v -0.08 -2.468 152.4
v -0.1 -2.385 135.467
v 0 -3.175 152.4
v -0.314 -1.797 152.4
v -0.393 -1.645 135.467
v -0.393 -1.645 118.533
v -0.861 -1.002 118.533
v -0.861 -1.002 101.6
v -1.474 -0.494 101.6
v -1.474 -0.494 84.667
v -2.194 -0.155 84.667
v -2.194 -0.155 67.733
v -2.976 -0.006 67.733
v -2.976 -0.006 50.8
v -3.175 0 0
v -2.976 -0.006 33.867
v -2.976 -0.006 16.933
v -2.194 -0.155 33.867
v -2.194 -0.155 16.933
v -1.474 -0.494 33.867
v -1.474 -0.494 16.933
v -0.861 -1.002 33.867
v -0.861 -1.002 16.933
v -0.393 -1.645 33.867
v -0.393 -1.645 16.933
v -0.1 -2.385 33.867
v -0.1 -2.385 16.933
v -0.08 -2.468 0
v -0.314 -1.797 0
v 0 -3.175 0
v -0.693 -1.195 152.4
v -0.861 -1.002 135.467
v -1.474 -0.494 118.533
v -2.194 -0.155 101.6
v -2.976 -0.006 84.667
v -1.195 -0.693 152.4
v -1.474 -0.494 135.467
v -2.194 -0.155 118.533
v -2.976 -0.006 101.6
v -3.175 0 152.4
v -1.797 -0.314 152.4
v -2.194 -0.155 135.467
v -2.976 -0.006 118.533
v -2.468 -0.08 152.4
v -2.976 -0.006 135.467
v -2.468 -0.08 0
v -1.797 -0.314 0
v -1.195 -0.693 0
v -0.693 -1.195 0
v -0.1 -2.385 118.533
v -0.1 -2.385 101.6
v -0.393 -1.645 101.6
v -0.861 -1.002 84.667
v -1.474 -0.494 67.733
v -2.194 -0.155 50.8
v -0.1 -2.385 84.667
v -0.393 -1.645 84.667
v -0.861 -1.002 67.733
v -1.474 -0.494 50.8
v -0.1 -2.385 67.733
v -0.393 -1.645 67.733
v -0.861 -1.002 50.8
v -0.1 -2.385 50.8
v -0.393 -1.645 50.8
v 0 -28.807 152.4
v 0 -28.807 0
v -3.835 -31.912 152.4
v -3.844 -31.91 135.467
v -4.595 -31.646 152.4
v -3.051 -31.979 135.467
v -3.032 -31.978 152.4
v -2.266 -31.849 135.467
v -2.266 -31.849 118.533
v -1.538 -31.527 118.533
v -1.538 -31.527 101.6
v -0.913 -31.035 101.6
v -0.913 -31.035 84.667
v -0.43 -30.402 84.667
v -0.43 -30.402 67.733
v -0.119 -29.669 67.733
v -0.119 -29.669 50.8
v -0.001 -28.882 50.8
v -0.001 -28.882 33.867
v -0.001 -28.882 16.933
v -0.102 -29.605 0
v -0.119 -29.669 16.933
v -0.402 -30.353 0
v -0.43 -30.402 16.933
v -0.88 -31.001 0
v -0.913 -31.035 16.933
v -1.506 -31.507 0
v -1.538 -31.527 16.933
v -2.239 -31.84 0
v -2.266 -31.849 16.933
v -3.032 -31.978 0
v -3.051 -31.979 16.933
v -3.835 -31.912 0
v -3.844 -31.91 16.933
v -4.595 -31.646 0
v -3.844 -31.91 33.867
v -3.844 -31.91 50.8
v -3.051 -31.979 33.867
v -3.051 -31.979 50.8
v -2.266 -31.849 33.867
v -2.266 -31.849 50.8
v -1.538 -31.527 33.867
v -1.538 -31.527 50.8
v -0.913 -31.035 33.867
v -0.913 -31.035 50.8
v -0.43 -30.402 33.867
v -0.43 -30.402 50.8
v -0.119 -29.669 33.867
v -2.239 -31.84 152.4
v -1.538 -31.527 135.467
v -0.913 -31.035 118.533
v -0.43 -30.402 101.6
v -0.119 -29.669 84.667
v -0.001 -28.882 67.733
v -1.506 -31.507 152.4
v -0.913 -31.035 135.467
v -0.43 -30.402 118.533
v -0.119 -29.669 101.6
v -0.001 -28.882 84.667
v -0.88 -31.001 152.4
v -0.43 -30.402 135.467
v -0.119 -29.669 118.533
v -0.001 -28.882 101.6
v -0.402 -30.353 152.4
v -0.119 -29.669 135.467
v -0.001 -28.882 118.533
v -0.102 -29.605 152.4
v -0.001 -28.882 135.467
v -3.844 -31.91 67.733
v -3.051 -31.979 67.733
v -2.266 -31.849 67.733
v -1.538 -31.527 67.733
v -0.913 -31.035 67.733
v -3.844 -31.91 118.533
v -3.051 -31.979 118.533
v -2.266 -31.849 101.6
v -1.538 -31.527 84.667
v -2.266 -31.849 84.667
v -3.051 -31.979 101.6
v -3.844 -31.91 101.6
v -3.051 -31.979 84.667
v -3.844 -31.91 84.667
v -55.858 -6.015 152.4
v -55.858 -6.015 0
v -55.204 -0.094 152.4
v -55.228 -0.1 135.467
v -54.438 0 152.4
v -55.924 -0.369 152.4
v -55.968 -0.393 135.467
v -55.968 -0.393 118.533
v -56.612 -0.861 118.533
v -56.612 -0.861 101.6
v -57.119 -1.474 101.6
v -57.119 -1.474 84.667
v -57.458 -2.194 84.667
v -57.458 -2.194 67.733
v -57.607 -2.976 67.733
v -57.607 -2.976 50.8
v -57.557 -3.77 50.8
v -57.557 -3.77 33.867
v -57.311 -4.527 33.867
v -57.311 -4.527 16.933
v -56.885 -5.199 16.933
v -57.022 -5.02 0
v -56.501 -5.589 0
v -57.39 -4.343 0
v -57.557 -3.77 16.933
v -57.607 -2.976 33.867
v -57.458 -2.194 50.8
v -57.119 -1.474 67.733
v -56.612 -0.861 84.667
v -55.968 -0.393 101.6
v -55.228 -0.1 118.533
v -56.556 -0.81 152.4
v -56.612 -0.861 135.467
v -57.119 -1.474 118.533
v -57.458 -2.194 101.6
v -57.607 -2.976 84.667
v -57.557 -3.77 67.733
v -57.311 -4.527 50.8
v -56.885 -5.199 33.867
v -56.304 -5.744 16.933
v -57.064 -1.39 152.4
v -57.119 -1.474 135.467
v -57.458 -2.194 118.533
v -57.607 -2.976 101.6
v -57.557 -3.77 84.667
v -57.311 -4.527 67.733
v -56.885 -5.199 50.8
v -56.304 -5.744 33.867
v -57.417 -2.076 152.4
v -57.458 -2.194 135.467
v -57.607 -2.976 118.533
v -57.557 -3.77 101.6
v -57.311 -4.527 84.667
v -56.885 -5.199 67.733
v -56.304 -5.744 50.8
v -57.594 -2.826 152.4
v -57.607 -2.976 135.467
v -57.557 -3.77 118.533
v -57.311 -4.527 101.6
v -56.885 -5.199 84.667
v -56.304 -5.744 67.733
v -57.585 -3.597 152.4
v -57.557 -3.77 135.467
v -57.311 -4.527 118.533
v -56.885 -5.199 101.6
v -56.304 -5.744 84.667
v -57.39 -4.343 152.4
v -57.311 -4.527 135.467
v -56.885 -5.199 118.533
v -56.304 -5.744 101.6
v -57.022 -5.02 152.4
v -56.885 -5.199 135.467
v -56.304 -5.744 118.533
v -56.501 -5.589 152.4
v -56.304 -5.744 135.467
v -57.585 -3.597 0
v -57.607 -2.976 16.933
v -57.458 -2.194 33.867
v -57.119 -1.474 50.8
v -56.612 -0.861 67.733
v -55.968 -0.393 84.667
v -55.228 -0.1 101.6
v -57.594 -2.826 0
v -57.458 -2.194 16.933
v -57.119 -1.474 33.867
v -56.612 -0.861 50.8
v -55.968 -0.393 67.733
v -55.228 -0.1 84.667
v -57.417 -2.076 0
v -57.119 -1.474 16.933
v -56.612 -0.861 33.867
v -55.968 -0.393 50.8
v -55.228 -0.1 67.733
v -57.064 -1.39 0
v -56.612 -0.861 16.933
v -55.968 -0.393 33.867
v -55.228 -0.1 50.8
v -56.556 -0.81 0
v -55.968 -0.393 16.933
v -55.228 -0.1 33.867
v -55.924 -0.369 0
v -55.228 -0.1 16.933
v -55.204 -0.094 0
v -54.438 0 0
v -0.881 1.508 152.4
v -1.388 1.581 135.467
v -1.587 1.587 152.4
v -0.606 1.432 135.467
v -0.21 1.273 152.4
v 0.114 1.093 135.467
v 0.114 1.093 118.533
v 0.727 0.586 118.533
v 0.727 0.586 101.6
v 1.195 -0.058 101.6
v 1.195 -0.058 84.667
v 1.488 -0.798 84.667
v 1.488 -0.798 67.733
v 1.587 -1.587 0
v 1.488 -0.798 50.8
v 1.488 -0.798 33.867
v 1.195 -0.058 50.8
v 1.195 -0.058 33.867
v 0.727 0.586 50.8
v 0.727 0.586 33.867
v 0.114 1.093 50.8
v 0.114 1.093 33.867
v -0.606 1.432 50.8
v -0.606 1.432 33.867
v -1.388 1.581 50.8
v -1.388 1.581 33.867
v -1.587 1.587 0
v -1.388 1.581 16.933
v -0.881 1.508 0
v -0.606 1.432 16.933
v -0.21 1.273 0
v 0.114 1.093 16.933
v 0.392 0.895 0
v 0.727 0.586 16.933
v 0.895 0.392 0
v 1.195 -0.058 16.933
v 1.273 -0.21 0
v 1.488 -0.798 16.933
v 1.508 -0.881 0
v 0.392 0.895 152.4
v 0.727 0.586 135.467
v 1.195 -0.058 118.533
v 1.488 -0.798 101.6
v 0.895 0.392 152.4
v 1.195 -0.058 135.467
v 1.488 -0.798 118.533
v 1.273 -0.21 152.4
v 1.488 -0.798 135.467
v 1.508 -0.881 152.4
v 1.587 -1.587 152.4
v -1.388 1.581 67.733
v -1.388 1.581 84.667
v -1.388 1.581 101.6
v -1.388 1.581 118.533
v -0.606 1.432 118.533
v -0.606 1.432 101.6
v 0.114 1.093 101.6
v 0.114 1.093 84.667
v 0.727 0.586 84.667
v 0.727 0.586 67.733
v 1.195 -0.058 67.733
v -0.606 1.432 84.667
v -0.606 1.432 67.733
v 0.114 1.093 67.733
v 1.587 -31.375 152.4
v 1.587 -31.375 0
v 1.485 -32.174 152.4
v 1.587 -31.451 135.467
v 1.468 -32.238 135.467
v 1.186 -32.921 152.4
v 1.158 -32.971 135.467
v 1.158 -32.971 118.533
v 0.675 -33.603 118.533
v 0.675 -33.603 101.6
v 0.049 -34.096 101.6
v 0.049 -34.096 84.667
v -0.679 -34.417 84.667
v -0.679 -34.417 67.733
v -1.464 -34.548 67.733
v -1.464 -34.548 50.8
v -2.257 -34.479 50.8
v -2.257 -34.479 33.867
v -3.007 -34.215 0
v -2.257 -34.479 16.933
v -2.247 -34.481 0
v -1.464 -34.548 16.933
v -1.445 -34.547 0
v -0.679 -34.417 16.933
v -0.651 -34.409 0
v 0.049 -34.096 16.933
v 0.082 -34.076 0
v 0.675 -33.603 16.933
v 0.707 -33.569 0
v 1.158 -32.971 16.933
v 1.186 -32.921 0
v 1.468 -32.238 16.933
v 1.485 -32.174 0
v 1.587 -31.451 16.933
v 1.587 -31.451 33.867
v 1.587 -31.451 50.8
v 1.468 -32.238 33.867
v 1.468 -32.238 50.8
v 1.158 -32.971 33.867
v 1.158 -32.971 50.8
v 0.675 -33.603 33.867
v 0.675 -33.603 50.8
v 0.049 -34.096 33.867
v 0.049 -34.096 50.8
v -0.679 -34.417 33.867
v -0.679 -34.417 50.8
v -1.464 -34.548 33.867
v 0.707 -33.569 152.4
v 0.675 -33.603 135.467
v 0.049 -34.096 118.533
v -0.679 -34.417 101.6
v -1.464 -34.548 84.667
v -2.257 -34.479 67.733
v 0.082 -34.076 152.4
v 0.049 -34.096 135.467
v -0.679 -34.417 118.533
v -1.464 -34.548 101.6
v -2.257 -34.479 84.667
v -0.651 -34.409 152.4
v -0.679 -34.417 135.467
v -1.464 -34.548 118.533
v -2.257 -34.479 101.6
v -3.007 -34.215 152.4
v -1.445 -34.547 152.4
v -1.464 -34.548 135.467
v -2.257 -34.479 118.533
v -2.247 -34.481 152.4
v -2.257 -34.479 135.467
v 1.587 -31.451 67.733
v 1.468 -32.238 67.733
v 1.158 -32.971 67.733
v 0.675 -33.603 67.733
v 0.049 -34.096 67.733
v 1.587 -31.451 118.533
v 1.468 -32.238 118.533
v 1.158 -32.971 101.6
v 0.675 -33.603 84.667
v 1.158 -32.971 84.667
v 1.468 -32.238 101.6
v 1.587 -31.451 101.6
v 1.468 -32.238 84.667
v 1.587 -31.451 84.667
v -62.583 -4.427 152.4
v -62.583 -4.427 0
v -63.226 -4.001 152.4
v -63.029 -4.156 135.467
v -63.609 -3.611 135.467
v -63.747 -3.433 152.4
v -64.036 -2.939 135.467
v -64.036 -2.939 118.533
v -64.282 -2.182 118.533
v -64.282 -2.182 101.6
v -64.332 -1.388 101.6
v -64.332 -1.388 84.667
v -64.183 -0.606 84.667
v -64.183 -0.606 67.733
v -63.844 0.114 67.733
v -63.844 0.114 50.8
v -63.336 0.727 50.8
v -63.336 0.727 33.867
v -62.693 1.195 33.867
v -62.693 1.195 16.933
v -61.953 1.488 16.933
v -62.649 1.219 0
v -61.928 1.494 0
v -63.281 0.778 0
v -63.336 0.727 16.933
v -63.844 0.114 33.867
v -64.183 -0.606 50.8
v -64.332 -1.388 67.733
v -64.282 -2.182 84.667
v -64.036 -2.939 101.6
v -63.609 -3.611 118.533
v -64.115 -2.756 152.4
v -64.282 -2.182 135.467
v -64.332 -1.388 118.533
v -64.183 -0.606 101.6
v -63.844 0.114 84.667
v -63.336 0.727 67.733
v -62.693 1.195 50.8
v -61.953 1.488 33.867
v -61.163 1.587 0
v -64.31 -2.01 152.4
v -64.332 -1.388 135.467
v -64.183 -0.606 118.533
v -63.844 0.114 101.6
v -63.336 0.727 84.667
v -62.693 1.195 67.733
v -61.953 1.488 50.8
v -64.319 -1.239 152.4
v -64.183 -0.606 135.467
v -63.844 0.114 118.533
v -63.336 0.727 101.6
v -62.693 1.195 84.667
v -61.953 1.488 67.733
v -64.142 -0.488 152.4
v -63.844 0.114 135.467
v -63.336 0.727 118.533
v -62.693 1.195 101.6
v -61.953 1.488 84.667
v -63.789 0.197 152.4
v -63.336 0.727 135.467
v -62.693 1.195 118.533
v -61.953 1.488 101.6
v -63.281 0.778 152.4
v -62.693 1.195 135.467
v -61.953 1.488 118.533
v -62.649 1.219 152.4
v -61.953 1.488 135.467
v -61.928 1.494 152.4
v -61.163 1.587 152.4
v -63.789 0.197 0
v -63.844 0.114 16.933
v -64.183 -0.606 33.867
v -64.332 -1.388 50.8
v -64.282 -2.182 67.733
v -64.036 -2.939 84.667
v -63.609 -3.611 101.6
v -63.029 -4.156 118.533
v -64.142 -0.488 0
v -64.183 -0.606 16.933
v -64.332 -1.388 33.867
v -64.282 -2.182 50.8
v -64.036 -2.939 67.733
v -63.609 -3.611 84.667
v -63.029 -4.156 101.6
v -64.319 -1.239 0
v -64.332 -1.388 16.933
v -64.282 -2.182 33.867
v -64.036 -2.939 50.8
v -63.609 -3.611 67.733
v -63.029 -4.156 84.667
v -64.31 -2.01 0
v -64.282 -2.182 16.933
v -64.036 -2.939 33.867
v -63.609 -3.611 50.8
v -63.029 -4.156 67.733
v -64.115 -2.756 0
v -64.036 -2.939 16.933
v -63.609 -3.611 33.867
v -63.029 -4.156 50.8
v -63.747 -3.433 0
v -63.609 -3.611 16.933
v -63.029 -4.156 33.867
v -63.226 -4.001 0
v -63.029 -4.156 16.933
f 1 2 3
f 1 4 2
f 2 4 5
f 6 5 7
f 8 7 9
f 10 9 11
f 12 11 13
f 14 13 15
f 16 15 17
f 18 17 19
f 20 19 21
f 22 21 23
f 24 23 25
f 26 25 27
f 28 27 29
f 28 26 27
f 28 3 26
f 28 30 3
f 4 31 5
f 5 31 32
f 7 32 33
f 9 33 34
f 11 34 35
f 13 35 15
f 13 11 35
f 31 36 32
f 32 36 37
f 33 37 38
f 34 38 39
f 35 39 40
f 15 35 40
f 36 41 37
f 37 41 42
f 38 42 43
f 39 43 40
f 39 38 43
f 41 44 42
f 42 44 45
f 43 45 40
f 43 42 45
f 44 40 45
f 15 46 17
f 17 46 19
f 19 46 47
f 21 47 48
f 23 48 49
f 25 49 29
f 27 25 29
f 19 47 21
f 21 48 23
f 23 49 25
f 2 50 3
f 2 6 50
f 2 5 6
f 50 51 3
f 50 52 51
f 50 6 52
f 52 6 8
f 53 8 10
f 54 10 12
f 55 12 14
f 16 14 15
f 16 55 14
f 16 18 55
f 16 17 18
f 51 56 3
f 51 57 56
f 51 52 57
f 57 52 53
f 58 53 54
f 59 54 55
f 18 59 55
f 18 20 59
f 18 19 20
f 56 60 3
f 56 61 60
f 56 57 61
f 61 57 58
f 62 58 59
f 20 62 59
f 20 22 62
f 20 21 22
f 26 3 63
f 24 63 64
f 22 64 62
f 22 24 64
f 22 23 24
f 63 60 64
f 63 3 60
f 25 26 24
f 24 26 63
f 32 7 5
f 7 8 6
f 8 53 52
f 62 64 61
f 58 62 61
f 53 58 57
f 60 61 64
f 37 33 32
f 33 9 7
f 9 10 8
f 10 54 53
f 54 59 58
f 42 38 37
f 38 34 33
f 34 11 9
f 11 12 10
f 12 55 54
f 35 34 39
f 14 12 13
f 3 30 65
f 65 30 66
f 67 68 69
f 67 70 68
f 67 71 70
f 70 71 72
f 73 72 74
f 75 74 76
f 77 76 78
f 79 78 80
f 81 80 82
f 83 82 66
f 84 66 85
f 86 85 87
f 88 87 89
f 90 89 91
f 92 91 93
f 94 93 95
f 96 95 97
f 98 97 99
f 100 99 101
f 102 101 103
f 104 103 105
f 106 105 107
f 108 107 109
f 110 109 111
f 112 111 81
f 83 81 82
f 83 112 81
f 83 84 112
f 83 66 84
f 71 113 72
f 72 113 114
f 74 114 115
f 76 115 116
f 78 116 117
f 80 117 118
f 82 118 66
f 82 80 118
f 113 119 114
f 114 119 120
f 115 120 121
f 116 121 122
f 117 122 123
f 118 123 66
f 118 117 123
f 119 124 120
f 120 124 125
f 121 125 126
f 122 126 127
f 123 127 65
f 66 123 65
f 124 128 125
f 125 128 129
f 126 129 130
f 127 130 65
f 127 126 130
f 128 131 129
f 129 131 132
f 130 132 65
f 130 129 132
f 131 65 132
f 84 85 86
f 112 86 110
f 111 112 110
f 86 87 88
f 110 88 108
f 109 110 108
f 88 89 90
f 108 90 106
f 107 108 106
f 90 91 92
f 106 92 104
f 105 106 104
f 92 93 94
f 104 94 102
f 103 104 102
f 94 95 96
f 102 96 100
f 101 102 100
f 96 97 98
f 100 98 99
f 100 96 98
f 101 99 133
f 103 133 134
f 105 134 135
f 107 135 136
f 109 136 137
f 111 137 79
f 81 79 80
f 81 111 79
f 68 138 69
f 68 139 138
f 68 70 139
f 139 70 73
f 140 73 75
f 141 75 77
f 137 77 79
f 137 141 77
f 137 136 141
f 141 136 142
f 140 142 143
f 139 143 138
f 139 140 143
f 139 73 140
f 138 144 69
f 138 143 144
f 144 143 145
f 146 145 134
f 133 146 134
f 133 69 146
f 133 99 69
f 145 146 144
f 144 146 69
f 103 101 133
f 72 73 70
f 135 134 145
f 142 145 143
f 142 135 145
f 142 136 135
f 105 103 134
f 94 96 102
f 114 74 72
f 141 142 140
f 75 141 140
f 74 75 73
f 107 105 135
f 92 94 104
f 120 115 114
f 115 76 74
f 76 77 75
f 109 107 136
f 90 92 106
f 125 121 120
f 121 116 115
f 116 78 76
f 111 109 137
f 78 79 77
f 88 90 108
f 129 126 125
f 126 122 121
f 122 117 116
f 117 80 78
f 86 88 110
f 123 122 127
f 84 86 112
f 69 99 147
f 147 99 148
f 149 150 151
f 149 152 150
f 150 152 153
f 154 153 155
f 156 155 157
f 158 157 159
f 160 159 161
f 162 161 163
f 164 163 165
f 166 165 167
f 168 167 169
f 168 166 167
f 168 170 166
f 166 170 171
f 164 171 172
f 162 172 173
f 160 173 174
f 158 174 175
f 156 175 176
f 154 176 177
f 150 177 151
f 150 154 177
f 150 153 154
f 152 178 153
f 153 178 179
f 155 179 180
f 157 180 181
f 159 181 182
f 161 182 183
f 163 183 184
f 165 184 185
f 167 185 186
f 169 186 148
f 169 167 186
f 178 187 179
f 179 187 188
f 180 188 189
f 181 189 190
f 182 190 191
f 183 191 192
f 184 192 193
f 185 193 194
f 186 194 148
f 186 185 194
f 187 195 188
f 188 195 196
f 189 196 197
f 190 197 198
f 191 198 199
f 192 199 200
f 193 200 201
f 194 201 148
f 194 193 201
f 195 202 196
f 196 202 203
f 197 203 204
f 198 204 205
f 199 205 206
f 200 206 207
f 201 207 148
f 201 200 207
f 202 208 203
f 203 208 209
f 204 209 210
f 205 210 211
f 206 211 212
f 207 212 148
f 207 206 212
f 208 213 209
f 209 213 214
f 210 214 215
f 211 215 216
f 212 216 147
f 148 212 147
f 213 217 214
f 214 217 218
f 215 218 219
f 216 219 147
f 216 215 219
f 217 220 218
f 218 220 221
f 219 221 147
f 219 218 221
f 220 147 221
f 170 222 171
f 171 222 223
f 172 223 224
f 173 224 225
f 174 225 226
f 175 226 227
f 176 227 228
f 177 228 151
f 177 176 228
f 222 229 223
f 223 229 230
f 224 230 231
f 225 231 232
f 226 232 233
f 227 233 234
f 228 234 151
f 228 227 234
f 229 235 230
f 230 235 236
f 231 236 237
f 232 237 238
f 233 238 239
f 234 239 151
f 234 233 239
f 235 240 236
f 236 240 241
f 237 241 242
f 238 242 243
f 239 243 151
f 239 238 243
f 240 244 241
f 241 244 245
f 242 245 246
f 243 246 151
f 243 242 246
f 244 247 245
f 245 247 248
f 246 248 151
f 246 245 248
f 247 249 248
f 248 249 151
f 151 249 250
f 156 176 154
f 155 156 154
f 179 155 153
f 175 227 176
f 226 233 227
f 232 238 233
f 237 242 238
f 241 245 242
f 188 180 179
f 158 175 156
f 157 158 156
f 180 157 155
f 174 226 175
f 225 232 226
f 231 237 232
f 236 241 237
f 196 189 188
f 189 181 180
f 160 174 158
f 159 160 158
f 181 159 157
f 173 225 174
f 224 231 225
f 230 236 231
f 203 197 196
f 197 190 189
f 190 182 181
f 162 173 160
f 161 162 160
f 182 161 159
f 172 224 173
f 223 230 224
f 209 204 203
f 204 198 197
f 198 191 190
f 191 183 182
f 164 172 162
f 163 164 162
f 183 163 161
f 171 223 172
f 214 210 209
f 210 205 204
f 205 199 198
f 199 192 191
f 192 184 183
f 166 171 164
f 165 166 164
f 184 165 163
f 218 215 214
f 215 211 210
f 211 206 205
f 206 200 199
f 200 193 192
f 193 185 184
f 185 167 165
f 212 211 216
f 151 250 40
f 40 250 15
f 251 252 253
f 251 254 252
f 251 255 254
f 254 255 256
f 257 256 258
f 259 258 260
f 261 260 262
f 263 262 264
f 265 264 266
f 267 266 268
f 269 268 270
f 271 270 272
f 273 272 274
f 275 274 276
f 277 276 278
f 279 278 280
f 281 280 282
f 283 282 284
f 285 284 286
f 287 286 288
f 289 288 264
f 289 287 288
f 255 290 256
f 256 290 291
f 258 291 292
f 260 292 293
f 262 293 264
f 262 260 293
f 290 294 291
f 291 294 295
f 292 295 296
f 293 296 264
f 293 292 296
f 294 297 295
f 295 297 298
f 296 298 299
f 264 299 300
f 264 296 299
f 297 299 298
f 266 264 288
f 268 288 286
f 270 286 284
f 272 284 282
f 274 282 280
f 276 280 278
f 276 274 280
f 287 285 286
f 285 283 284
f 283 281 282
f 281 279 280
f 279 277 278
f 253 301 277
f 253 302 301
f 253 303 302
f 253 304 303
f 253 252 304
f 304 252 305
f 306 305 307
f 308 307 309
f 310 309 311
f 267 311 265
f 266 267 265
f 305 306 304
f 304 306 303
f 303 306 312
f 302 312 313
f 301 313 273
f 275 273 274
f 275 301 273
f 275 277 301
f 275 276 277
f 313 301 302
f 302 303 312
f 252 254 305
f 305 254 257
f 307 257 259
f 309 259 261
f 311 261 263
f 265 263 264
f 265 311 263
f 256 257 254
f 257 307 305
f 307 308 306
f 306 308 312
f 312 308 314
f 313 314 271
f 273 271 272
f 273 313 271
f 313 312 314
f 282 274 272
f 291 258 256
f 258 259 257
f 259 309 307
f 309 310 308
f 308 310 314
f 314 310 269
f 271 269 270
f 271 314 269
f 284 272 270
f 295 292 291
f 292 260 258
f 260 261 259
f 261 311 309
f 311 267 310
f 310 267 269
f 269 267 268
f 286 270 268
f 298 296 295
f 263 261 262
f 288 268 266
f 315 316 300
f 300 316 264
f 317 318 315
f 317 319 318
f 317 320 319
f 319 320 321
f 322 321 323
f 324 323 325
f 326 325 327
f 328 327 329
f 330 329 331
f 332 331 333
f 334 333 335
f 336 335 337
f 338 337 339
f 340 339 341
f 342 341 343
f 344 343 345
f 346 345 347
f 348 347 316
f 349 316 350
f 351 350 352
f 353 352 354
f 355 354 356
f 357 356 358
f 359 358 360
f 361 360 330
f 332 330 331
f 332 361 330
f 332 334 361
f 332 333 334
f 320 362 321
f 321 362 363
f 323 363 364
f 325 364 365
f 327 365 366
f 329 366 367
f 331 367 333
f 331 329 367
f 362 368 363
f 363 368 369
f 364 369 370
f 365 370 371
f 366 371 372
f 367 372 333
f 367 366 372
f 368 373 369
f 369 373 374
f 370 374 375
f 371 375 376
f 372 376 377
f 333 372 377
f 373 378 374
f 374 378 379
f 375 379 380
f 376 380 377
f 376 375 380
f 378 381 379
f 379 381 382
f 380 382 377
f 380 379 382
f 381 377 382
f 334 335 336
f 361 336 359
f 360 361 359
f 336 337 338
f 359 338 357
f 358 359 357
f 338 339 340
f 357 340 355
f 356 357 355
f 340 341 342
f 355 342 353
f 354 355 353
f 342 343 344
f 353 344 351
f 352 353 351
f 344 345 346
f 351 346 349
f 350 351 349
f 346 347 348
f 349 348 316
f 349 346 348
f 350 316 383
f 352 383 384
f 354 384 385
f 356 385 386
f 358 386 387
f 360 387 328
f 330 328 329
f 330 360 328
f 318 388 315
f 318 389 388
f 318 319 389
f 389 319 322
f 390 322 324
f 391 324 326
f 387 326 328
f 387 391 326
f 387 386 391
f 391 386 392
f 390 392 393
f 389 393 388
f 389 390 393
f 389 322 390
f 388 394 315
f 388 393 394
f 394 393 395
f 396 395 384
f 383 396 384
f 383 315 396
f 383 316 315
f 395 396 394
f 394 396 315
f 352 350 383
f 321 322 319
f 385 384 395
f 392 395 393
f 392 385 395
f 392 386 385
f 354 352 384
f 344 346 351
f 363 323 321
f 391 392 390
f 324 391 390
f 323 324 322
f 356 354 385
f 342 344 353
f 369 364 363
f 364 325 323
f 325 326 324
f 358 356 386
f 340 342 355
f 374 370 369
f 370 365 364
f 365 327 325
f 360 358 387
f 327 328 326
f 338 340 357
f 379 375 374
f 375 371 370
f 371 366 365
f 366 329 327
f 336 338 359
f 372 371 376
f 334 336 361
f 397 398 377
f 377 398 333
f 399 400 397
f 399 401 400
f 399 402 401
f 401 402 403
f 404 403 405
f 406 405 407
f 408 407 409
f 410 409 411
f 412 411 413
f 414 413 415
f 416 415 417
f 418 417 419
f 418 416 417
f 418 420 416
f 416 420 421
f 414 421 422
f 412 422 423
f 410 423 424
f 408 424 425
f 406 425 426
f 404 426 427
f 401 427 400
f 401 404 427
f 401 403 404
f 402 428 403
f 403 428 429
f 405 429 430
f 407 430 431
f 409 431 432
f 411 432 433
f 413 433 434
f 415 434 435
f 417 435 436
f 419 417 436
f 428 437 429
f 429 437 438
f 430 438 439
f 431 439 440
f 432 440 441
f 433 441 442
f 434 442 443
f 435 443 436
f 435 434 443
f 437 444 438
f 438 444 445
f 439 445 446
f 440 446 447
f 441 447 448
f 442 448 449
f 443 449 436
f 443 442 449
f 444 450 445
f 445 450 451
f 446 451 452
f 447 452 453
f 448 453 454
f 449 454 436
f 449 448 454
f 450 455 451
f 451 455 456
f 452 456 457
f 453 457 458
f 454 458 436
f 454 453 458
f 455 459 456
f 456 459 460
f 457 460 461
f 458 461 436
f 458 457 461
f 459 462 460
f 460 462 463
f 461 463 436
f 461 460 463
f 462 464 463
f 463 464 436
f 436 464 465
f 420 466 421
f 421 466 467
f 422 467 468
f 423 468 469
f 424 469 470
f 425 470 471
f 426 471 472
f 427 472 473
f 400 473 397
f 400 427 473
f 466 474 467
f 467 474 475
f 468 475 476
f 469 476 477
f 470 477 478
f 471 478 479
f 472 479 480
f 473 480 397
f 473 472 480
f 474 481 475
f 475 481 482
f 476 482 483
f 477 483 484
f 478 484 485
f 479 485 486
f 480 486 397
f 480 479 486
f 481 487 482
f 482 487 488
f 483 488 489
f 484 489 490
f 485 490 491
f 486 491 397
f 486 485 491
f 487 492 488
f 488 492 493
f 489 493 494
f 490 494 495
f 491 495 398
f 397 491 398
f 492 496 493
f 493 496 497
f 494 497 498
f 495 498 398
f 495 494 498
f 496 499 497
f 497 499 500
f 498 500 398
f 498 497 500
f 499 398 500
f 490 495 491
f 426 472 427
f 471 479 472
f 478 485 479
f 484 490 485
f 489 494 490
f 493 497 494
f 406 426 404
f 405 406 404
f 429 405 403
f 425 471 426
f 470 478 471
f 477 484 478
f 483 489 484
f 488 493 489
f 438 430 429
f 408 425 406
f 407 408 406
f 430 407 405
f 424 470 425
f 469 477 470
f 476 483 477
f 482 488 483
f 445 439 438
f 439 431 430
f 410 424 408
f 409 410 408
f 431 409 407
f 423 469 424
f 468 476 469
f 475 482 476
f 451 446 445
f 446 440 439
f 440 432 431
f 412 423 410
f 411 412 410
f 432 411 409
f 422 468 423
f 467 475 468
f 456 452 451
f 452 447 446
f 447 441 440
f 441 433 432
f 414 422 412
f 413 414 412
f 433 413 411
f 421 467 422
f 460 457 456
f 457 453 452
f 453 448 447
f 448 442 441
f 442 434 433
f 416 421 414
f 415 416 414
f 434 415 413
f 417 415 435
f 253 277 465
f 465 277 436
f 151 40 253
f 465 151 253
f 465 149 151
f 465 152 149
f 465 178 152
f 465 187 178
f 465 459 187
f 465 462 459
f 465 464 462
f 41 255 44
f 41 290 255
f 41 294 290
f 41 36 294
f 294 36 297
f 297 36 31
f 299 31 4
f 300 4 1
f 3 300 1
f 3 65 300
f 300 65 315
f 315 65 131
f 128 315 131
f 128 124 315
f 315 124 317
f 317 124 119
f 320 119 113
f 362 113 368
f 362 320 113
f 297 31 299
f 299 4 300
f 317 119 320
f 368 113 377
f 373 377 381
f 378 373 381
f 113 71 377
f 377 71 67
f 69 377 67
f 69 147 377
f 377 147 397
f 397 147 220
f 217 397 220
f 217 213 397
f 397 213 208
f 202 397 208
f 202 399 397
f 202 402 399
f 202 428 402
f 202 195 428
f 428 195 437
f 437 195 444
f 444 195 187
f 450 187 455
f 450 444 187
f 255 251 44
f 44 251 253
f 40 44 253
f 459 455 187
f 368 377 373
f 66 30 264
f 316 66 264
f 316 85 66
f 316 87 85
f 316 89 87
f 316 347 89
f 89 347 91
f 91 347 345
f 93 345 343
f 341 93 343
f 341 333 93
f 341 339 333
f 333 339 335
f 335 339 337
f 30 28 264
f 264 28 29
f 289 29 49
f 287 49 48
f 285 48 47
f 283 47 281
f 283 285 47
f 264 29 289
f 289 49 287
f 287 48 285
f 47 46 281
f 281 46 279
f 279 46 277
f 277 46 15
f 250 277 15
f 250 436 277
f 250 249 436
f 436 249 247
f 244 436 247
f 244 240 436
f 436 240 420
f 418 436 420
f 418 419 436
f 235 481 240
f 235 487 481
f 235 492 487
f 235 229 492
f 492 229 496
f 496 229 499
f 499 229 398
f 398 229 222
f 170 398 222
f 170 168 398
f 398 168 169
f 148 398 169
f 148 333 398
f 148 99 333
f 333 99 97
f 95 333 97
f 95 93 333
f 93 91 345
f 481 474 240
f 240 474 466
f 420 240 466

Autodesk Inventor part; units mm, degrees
ref_plane "YZ Plane" through (0, 0, 0) normal (1, 0, 0) x (0, 1, 0)
ref_plane "XZ Plane" through (0, 0, 0) normal (0, 1, 0) x (-1, 0, 0)
ref_plane "XY Plane" through (0, 0, 0) normal (0, 0, 1) x (1, 0, 0)
sketch "Sketch1" plane through (0, 0, 0) normal (0, 0, 1) x (1, 0, 0)
  line L0 (-3.175, 0) -> (-54.4382, 0)
  line L1 (-55.8581, -6.0148) -> (-4.5949, -31.6464)
  line L2 (0, -28.8066) -> (0, -3.175)
  line L3 (-1.5875, 1.5875) -> (-61.163, 1.5875)
  line L4 (-62.5829, -4.4273) -> (-3.0074, -34.215)
  line L5 (1.5875, -31.3752) -> (1.5875, -1.5875)
  arc A0 (-54.4382, 0) -> (-55.8581, -6.0148) centre (-54.4382, -3.175) ccw
  arc A1 (-61.163, 1.5875) -> (-62.5829, -4.4273) centre (-61.163, -1.5875) ccw
  arc A2 (-4.5949, -31.6464) -> (0, -28.8066) centre (-3.175, -28.8066) ccw
  arc A3 (-3.0074, -34.215) -> (1.5875, -31.3752) centre (-1.5875, -31.3752) ccw
  arc A4 (0, -3.175) -> (-3.175, 0) centre (-3.175, -3.175) ccw
  arc A5 (1.5875, -1.5875) -> (-1.5875, 1.5875) centre (-1.5875, -1.5875) ccw
  point P0 (0, 0)
  point P1 (-67.8877, 0)
  point P2 (0, -33.9439)
  point P3 (1.5875, 1.5875)
  point P4 (-74.6125, 1.5875)
  point P5 (1.5875, -36.5125)
  dimension "d0" = 1.5875
  dimension "d1" = 1.5875
  dimension "d2" = 1.5875
  dimension "d3" = 76.2
  dimension "d4" = 38.1
  dimension "d7" = 3.175
  dimension "d8" = 3.175
extrude "Extrusion1" add sketch "Sketch1" along normal blind 152.4
properties part number "BatteryMount" material "Aluminum-6061"
